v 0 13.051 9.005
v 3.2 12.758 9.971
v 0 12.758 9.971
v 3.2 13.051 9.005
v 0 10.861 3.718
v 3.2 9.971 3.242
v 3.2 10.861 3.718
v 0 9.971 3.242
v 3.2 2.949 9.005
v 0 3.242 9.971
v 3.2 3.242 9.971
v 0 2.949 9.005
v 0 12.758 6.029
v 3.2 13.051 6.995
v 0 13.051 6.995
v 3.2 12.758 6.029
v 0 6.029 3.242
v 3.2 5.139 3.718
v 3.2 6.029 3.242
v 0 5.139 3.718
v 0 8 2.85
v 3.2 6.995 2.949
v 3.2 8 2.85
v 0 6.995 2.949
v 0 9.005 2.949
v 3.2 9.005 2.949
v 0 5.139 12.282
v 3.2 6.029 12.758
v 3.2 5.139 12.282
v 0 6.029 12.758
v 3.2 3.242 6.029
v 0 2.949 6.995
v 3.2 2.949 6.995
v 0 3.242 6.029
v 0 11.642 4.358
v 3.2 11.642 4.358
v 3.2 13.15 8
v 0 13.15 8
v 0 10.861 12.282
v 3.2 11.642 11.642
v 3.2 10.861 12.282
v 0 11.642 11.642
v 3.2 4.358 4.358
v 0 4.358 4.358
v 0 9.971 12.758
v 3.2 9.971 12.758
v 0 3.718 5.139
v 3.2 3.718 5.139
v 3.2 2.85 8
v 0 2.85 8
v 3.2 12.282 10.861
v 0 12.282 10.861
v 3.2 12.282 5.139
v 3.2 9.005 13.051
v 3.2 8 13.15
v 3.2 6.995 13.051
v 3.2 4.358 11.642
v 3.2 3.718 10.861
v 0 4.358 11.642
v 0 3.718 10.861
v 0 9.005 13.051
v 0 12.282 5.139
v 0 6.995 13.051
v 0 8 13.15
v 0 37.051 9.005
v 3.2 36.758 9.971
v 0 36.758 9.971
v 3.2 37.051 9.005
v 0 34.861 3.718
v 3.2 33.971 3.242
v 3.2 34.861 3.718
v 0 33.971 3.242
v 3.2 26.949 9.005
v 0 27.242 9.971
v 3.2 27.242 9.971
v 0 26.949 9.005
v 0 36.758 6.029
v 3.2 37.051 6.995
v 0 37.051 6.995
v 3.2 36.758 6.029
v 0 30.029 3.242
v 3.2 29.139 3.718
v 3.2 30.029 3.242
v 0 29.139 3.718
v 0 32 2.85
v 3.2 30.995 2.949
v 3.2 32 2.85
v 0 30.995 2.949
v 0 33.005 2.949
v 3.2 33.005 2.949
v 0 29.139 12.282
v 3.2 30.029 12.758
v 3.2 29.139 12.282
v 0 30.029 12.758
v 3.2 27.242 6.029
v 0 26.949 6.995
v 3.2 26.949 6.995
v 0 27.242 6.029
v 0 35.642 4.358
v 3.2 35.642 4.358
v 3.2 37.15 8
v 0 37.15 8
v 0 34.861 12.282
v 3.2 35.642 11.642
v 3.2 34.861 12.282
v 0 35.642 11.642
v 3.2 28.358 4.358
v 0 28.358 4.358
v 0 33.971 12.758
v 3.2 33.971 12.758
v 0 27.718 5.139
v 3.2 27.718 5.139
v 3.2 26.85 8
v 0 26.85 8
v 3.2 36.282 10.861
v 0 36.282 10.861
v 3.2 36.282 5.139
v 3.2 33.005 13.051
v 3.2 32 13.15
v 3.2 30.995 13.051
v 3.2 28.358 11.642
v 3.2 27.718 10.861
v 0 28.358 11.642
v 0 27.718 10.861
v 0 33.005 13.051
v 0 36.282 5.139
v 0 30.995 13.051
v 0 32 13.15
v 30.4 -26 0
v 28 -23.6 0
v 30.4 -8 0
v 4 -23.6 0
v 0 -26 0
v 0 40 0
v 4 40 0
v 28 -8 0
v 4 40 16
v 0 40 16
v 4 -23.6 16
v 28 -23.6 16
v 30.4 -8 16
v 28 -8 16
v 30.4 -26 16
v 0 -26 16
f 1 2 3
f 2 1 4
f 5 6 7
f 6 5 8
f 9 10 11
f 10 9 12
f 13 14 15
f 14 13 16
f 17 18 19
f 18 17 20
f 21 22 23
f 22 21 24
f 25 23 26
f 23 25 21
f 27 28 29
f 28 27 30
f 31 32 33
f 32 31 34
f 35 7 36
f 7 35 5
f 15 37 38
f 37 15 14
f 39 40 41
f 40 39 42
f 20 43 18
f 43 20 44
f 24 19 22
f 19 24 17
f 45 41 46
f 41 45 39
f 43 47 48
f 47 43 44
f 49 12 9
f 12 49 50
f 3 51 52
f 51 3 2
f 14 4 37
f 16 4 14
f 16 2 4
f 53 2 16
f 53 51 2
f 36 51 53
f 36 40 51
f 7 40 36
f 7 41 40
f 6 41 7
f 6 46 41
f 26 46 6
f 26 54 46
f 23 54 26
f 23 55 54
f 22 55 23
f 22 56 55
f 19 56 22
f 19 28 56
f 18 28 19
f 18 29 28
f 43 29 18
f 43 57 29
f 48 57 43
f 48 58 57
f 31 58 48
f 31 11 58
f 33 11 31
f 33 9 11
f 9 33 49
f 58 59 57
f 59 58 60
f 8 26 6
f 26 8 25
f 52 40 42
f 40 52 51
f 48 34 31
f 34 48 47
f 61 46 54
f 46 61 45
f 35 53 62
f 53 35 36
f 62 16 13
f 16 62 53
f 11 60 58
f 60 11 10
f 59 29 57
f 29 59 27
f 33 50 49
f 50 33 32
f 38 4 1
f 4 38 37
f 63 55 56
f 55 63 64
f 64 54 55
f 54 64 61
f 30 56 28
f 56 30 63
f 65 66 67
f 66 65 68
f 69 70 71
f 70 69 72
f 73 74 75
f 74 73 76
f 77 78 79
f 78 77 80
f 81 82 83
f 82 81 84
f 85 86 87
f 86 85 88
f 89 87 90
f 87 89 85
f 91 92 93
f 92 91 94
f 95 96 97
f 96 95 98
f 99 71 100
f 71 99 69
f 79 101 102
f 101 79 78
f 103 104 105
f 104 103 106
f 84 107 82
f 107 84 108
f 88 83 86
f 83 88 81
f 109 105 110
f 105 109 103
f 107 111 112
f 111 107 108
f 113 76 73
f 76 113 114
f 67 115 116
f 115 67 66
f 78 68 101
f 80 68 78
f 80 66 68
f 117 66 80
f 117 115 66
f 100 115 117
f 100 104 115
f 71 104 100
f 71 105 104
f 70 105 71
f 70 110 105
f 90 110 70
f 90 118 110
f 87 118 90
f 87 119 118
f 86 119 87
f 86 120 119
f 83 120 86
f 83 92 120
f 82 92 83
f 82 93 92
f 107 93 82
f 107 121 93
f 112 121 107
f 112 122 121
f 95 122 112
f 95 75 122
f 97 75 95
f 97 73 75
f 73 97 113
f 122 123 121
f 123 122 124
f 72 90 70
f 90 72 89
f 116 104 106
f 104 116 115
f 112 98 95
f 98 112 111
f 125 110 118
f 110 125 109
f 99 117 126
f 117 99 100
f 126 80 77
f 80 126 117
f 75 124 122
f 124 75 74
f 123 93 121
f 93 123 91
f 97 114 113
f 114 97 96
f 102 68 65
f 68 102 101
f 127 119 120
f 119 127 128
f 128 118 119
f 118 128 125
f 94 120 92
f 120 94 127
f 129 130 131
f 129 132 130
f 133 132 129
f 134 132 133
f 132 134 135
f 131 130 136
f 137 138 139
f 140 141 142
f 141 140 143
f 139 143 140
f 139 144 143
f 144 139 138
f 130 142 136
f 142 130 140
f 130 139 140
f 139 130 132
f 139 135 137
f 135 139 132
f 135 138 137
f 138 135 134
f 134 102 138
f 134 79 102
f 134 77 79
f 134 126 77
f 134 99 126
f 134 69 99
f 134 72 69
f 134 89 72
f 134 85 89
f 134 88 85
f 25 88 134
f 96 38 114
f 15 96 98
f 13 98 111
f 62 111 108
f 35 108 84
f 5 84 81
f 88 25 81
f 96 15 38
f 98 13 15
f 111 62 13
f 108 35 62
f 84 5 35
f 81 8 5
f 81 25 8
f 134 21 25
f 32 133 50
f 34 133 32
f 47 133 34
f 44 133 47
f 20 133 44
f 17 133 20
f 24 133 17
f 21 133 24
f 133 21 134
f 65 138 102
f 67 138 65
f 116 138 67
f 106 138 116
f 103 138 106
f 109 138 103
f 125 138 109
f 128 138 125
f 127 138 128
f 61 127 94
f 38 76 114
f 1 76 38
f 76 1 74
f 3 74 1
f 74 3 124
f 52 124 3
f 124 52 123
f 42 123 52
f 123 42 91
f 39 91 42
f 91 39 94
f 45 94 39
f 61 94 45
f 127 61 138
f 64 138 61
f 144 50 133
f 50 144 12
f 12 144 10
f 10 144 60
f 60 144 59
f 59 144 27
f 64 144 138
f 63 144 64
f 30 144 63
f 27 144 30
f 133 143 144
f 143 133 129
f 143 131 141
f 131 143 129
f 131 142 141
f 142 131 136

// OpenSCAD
// Magnetic cable hook for the rails. The rail's flat leg is flush against the desk, so
// nothing can clip over it; instead this hook holds itself to the steel with two 10 x 3 mm
// neodymium disc magnets (glued into the pockets) and sticks anywhere on the vertical leg's
// front face. A J below holds a bundle up to 24 mm. For light cable runs; use the screw-on
// clips or the tray for anything heavy. Print on its side as rendered, PETG.

w       = 16;    // width along the rail
plate_h = 40;    // the plate against the vertical leg (which is 50.8 tall)
wall    = 2.4;
plate_t = 4;     // the plate against the steel, thick enough for the magnet pockets plus 0.8 mm of backing
loop    = 24;    // inside width of the J
drop    = 26;    // how far the J hangs below the plate
mag_d   = 10.3;  // magnet pocket, for 10 x 3 mm discs
mag_t   = 3.2;

module profile() {
    translate([0, -drop]) square([plate_t, drop + plate_h]);              // the plate on the steel, continuing down as the J's spine
    translate([0, -drop]) square([plate_t + loop + wall, wall]);          // bottom of the J
    translate([plate_t + loop, -drop]) square([wall, drop - 8]);          // up-stand, 8 mm short of the plate so cables drop in
}
difference() {
    linear_extrude(w) profile();
    // magnet pockets in the plate, opening on the steel side (x = 0), one near the top and one near the bottom
    for (y = [8, plate_h - 8]) translate([-1, y, w / 2]) rotate([0, 90, 0]) cylinder(d = mag_d, h = mag_t + 1, $fn = 32);   // 3.2 deep into a 4 mm plate
}
